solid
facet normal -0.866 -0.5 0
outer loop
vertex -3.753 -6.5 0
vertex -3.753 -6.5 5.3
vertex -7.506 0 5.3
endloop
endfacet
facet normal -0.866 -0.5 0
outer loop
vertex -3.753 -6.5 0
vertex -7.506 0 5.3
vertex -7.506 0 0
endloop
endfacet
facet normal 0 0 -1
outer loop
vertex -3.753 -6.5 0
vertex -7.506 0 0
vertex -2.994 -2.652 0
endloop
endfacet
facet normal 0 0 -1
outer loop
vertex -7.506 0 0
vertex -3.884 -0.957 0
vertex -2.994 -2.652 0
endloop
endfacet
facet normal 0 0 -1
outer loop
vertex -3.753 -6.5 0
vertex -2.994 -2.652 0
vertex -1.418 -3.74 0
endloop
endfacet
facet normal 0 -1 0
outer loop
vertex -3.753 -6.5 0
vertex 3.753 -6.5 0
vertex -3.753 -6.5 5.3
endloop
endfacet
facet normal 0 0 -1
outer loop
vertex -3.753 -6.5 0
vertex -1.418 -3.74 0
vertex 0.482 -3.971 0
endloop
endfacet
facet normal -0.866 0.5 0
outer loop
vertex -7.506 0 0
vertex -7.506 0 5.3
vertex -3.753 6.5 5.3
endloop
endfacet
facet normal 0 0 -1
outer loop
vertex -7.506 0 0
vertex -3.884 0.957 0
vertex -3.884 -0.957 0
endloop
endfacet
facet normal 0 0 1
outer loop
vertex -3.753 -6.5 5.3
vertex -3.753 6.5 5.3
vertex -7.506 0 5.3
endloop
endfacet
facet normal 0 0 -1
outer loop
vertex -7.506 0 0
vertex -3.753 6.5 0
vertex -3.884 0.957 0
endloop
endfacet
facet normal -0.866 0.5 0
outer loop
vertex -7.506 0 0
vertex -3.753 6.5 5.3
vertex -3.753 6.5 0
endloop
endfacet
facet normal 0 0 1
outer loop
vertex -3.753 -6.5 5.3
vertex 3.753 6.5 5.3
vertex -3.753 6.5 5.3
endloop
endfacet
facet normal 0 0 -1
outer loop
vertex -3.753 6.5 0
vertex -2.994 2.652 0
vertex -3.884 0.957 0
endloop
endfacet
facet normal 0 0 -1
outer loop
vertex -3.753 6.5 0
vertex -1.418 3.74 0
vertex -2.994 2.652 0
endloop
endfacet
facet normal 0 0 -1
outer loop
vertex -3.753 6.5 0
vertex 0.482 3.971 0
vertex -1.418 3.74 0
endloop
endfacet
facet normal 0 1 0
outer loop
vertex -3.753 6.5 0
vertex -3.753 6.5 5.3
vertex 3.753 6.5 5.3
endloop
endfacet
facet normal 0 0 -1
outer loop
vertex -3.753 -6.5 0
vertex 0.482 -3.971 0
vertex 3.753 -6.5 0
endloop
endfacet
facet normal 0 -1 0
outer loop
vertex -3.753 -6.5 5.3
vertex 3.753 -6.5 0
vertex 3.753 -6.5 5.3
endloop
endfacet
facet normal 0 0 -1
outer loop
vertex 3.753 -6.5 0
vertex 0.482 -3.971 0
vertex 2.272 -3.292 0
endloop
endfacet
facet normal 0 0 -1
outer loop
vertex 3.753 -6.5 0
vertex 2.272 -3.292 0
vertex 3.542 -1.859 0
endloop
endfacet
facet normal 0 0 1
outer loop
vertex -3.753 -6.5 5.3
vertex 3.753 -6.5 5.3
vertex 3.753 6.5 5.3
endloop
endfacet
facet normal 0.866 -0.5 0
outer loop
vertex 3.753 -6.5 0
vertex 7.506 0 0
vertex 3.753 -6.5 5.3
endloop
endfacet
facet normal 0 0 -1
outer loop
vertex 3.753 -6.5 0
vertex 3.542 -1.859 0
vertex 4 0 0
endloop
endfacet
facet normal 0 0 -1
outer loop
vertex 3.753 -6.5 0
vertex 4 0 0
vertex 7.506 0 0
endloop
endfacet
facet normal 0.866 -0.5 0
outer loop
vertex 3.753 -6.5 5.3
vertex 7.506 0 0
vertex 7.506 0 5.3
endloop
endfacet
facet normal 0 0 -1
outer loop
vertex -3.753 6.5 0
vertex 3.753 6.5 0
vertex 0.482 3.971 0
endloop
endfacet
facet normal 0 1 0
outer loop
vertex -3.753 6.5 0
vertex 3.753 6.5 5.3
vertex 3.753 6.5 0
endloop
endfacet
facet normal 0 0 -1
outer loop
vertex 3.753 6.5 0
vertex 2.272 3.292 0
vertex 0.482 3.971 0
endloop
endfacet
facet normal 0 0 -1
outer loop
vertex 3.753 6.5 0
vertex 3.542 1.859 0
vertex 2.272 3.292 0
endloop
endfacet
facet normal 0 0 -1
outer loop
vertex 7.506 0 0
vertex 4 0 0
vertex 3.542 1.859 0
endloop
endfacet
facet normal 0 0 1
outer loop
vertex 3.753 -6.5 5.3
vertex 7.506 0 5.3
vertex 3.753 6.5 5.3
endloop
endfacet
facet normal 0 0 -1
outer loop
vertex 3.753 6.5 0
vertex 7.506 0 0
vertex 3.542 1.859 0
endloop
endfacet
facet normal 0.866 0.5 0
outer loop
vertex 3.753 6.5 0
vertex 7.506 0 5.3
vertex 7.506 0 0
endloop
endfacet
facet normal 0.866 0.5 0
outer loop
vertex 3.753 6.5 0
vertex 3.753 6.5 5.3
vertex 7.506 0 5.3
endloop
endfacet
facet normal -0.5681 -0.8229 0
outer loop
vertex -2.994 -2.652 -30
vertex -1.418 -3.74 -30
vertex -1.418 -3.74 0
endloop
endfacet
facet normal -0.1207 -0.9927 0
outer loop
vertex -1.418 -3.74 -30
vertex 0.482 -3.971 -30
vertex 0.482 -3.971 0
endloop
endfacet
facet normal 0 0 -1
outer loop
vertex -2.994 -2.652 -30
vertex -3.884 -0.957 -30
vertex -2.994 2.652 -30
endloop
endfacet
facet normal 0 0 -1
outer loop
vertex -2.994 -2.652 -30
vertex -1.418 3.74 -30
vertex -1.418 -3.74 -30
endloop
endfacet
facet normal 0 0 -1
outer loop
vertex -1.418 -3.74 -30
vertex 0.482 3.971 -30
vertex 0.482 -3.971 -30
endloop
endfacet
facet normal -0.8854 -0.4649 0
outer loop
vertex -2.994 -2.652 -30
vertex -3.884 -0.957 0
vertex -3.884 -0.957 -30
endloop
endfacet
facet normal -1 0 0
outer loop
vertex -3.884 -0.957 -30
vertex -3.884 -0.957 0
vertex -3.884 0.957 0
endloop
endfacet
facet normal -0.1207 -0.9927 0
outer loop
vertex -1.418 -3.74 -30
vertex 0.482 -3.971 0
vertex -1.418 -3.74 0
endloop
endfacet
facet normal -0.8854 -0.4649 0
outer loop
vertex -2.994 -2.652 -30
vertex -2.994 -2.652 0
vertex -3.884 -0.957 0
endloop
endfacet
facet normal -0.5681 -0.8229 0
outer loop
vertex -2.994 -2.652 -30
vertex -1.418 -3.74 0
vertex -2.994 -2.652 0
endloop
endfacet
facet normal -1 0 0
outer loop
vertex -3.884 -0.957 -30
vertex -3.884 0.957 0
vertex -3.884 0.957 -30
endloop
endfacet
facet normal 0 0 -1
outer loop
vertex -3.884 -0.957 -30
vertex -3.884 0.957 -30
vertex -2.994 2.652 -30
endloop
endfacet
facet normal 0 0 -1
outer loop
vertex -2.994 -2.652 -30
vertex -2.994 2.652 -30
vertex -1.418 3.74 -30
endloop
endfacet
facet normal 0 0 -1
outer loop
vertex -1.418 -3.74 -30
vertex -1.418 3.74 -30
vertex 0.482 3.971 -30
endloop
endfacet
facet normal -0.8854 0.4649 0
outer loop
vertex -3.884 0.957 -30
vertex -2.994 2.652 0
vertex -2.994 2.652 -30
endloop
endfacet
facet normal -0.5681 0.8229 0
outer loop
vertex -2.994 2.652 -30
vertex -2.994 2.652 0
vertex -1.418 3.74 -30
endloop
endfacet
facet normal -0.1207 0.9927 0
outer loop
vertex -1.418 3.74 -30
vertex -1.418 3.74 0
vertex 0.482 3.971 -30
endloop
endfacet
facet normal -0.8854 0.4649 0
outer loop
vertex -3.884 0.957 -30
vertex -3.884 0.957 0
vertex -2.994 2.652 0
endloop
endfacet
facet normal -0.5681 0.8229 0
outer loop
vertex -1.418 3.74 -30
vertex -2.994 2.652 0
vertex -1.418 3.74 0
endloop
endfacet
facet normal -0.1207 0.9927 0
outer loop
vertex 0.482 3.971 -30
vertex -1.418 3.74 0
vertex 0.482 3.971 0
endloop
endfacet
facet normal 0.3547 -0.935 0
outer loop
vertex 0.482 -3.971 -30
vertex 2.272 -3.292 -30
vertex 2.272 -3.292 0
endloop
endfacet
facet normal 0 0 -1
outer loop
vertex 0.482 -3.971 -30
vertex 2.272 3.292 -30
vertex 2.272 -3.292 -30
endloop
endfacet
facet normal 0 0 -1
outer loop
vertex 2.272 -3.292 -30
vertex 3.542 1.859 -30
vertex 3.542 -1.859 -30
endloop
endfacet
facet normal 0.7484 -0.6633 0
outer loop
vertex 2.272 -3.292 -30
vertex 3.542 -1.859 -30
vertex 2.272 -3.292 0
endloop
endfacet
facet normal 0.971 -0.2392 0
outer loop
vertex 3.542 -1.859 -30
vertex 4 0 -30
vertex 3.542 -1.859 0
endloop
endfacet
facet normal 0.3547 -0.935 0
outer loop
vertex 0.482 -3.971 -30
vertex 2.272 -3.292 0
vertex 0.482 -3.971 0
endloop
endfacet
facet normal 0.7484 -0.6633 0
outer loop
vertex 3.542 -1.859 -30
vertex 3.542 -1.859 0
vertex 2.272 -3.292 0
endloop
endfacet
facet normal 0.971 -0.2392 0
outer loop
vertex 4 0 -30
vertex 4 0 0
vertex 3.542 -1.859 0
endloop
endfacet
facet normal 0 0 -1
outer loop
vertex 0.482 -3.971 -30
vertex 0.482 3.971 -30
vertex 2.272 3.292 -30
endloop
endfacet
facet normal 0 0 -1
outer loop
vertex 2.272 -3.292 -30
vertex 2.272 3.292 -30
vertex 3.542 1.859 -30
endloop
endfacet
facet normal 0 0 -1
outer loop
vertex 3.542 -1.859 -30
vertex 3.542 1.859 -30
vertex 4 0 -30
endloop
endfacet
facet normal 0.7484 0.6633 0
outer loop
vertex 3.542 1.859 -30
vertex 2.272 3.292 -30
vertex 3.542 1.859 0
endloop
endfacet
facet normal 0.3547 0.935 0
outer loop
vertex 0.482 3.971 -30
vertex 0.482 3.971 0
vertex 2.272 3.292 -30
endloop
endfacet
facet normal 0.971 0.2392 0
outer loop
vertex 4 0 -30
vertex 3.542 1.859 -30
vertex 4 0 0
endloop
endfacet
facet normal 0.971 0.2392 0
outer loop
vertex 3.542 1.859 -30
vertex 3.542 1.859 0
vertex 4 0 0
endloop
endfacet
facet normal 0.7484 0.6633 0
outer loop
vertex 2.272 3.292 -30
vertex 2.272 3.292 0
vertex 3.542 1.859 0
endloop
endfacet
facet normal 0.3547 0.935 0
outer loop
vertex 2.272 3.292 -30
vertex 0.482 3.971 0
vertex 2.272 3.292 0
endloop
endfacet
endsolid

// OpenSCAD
union() {
    // 六角頭：対辺距離 13 mm、高さ 5.3 mm
    cylinder(h = 5.3, r = 13 / sqrt(3), $fn = 6);

    // シャンク：直径 8 mm、長さ 30 mm
    translate([0, 0, -30])
        cylinder(h = 30, d = 8);
}
